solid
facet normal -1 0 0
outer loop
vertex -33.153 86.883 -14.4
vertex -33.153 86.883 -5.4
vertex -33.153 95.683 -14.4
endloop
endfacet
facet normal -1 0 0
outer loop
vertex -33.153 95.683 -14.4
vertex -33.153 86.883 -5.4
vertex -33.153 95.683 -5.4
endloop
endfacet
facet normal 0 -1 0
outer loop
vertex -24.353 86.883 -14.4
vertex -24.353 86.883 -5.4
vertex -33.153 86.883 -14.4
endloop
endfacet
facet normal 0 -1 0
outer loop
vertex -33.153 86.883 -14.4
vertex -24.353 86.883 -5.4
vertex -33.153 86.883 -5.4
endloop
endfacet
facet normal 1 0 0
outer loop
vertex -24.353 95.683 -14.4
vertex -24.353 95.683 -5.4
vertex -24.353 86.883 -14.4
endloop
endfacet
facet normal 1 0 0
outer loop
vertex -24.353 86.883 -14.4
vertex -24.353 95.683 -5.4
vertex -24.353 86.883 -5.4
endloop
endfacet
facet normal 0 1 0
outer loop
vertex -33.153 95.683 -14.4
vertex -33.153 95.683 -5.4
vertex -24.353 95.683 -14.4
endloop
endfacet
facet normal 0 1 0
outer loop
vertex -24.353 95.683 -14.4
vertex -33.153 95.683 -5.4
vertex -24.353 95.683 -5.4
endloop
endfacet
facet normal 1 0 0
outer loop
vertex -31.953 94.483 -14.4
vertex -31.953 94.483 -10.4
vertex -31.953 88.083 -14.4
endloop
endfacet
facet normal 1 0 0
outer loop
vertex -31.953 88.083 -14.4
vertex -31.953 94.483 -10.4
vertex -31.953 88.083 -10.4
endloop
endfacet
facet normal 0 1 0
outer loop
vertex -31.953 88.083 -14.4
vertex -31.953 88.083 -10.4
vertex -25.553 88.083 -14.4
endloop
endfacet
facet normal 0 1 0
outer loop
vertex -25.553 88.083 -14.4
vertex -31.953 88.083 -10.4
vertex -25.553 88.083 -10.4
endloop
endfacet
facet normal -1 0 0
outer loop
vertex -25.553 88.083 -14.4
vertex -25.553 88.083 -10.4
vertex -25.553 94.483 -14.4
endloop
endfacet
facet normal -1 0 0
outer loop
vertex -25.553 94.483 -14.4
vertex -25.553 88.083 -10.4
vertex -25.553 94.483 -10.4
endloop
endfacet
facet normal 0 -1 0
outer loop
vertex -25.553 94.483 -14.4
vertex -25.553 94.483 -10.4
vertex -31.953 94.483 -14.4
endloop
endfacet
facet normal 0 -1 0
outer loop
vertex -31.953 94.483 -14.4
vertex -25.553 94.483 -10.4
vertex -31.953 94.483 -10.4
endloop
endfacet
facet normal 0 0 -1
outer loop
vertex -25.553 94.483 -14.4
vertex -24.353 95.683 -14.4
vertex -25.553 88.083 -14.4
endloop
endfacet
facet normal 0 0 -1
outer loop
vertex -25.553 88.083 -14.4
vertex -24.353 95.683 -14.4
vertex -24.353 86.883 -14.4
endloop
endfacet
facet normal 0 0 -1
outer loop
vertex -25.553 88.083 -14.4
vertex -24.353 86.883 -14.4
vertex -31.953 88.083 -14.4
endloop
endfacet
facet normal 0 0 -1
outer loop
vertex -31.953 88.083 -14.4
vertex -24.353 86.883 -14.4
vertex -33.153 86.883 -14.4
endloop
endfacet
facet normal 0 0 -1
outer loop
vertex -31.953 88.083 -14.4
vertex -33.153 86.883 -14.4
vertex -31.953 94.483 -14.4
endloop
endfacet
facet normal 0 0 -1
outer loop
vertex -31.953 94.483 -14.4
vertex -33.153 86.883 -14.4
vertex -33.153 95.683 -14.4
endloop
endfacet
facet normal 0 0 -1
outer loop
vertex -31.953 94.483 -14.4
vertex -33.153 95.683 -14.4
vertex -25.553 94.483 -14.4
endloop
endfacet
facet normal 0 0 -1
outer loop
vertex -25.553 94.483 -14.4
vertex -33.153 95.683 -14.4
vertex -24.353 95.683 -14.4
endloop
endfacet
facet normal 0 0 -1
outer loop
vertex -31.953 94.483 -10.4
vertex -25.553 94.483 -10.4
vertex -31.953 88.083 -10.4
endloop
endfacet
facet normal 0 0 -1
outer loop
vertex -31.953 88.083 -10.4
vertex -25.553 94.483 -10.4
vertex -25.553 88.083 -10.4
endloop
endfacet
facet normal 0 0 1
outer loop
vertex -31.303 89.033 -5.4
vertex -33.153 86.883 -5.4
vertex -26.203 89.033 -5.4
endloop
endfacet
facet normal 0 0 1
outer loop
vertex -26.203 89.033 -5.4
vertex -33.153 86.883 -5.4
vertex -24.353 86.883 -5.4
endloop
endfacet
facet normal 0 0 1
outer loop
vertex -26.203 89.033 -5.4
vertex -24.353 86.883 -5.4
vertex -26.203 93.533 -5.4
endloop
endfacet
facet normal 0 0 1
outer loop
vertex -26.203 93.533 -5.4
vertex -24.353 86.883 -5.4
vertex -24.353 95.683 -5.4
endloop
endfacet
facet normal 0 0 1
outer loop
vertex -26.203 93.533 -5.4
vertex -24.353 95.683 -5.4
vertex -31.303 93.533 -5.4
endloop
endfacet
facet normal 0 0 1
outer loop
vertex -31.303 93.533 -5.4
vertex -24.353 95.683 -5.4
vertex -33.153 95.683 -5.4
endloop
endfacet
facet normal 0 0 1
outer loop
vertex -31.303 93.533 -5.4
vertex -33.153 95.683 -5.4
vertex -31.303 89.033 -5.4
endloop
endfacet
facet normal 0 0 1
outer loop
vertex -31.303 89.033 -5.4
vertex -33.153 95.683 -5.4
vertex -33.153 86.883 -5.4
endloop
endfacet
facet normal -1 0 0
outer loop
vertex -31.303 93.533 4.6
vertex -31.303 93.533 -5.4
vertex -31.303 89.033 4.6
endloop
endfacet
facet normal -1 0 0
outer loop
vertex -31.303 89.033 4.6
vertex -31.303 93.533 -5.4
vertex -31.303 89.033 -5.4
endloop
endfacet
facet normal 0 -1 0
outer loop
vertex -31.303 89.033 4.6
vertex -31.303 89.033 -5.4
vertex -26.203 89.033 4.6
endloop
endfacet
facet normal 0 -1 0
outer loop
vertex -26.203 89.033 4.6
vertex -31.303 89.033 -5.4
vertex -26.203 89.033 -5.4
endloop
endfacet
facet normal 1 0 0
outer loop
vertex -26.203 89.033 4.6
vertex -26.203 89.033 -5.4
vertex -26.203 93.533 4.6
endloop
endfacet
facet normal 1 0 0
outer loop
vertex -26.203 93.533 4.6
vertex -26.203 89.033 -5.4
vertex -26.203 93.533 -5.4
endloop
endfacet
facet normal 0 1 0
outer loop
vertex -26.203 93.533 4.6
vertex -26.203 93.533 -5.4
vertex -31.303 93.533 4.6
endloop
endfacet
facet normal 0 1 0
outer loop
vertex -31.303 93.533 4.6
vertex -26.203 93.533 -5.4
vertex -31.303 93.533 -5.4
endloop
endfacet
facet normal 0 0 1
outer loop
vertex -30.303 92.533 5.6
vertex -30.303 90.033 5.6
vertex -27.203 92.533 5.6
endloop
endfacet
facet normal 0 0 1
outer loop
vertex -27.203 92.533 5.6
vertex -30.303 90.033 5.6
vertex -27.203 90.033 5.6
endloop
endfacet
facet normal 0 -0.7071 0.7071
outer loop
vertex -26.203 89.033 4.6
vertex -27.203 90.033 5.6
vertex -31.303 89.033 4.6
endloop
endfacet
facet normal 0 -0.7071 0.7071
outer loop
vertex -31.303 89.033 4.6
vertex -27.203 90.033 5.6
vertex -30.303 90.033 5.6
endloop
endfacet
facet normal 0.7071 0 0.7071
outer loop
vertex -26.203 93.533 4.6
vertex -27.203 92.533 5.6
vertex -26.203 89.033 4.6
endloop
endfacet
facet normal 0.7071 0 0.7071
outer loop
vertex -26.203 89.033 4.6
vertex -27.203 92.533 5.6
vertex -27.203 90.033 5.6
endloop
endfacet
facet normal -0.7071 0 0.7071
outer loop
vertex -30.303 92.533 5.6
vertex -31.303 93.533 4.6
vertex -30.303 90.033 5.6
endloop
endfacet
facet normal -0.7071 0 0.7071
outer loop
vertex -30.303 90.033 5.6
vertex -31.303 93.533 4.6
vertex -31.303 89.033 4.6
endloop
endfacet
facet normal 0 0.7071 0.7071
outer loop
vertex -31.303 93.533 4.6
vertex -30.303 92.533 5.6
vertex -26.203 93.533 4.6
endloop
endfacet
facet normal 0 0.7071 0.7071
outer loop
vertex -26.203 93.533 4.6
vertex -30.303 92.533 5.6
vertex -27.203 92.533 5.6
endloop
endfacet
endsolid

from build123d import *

# Parameters (mm, degrees)
BOSS_EXTRUDE1_DEPTH      = 2
BOSS_EXTRUDE1_DEPTH_BACK = 2
SKETCH2_W                = 8.799999809
SKETCH2_H                = 8.79999981
SKETCH2_W_2              = 6.399999809
SKETCH2_H_2              = 6.39999981
SKETCH3_W                = 8.799999809
SKETCH3_H                = 8.79999981
BOSS_EXTRUDE2_DEPTH      = 5
SKETCH4_W                = 5.099999879
SKETCH4_H                = 4.499999898
BOSS_EXTRUDE3_DEPTH      = 11
CHAMFER1_SIZE            = 1


with BuildPart() as part:
    # Sketch2 → Boss-Extrude1 (new, two sides: drawn at the far end of the back side and taken through both)
    with BuildSketch(Plane.XY.offset(-12.400000378).offset(-BOSS_EXTRUDE1_DEPTH_BACK)):
        with Locations((-28.752555167, 91.282627708)):
            Rectangle(SKETCH2_W, SKETCH2_H)
        with Locations((-28.752555167, 91.282627708)):
            Rectangle(SKETCH2_W_2, SKETCH2_H_2, mode=Mode.SUBTRACT)
    extrude(amount=BOSS_EXTRUDE1_DEPTH + BOSS_EXTRUDE1_DEPTH_BACK)

    # Sketch3 → Boss-Extrude2 (add)
    with BuildSketch(Plane.XY.offset(-10.400000378)):
        with Locations((-28.752555167, 91.282627708)):
            Rectangle(SKETCH3_W, SKETCH3_H)
    extrude(amount=BOSS_EXTRUDE2_DEPTH)

    # Sketch4 → Boss-Extrude3 (add)
    with BuildSketch(Plane.XY.offset(-5.400000378)):
        with Locations((-28.752555167, 91.282627708)):
            Rectangle(SKETCH4_W, SKETCH4_H)
    extrude(amount=BOSS_EXTRUDE3_DEPTH)

    # Chamfer1
    chamfer1_edges = [part.edges().sort_by_distance(p)[0] for p in [
        (-28.752555166, 93.532627657, 5.599999622),
        (-26.202555227, 91.282627708, 5.599999622),
        (-28.752555166, 89.032627759, 5.599999622),
        (-31.302555106, 91.282627708, 5.599999622),
    ]]
    chamfer(chamfer1_edges, length=CHAMFER1_SIZE)


solid = part.part
